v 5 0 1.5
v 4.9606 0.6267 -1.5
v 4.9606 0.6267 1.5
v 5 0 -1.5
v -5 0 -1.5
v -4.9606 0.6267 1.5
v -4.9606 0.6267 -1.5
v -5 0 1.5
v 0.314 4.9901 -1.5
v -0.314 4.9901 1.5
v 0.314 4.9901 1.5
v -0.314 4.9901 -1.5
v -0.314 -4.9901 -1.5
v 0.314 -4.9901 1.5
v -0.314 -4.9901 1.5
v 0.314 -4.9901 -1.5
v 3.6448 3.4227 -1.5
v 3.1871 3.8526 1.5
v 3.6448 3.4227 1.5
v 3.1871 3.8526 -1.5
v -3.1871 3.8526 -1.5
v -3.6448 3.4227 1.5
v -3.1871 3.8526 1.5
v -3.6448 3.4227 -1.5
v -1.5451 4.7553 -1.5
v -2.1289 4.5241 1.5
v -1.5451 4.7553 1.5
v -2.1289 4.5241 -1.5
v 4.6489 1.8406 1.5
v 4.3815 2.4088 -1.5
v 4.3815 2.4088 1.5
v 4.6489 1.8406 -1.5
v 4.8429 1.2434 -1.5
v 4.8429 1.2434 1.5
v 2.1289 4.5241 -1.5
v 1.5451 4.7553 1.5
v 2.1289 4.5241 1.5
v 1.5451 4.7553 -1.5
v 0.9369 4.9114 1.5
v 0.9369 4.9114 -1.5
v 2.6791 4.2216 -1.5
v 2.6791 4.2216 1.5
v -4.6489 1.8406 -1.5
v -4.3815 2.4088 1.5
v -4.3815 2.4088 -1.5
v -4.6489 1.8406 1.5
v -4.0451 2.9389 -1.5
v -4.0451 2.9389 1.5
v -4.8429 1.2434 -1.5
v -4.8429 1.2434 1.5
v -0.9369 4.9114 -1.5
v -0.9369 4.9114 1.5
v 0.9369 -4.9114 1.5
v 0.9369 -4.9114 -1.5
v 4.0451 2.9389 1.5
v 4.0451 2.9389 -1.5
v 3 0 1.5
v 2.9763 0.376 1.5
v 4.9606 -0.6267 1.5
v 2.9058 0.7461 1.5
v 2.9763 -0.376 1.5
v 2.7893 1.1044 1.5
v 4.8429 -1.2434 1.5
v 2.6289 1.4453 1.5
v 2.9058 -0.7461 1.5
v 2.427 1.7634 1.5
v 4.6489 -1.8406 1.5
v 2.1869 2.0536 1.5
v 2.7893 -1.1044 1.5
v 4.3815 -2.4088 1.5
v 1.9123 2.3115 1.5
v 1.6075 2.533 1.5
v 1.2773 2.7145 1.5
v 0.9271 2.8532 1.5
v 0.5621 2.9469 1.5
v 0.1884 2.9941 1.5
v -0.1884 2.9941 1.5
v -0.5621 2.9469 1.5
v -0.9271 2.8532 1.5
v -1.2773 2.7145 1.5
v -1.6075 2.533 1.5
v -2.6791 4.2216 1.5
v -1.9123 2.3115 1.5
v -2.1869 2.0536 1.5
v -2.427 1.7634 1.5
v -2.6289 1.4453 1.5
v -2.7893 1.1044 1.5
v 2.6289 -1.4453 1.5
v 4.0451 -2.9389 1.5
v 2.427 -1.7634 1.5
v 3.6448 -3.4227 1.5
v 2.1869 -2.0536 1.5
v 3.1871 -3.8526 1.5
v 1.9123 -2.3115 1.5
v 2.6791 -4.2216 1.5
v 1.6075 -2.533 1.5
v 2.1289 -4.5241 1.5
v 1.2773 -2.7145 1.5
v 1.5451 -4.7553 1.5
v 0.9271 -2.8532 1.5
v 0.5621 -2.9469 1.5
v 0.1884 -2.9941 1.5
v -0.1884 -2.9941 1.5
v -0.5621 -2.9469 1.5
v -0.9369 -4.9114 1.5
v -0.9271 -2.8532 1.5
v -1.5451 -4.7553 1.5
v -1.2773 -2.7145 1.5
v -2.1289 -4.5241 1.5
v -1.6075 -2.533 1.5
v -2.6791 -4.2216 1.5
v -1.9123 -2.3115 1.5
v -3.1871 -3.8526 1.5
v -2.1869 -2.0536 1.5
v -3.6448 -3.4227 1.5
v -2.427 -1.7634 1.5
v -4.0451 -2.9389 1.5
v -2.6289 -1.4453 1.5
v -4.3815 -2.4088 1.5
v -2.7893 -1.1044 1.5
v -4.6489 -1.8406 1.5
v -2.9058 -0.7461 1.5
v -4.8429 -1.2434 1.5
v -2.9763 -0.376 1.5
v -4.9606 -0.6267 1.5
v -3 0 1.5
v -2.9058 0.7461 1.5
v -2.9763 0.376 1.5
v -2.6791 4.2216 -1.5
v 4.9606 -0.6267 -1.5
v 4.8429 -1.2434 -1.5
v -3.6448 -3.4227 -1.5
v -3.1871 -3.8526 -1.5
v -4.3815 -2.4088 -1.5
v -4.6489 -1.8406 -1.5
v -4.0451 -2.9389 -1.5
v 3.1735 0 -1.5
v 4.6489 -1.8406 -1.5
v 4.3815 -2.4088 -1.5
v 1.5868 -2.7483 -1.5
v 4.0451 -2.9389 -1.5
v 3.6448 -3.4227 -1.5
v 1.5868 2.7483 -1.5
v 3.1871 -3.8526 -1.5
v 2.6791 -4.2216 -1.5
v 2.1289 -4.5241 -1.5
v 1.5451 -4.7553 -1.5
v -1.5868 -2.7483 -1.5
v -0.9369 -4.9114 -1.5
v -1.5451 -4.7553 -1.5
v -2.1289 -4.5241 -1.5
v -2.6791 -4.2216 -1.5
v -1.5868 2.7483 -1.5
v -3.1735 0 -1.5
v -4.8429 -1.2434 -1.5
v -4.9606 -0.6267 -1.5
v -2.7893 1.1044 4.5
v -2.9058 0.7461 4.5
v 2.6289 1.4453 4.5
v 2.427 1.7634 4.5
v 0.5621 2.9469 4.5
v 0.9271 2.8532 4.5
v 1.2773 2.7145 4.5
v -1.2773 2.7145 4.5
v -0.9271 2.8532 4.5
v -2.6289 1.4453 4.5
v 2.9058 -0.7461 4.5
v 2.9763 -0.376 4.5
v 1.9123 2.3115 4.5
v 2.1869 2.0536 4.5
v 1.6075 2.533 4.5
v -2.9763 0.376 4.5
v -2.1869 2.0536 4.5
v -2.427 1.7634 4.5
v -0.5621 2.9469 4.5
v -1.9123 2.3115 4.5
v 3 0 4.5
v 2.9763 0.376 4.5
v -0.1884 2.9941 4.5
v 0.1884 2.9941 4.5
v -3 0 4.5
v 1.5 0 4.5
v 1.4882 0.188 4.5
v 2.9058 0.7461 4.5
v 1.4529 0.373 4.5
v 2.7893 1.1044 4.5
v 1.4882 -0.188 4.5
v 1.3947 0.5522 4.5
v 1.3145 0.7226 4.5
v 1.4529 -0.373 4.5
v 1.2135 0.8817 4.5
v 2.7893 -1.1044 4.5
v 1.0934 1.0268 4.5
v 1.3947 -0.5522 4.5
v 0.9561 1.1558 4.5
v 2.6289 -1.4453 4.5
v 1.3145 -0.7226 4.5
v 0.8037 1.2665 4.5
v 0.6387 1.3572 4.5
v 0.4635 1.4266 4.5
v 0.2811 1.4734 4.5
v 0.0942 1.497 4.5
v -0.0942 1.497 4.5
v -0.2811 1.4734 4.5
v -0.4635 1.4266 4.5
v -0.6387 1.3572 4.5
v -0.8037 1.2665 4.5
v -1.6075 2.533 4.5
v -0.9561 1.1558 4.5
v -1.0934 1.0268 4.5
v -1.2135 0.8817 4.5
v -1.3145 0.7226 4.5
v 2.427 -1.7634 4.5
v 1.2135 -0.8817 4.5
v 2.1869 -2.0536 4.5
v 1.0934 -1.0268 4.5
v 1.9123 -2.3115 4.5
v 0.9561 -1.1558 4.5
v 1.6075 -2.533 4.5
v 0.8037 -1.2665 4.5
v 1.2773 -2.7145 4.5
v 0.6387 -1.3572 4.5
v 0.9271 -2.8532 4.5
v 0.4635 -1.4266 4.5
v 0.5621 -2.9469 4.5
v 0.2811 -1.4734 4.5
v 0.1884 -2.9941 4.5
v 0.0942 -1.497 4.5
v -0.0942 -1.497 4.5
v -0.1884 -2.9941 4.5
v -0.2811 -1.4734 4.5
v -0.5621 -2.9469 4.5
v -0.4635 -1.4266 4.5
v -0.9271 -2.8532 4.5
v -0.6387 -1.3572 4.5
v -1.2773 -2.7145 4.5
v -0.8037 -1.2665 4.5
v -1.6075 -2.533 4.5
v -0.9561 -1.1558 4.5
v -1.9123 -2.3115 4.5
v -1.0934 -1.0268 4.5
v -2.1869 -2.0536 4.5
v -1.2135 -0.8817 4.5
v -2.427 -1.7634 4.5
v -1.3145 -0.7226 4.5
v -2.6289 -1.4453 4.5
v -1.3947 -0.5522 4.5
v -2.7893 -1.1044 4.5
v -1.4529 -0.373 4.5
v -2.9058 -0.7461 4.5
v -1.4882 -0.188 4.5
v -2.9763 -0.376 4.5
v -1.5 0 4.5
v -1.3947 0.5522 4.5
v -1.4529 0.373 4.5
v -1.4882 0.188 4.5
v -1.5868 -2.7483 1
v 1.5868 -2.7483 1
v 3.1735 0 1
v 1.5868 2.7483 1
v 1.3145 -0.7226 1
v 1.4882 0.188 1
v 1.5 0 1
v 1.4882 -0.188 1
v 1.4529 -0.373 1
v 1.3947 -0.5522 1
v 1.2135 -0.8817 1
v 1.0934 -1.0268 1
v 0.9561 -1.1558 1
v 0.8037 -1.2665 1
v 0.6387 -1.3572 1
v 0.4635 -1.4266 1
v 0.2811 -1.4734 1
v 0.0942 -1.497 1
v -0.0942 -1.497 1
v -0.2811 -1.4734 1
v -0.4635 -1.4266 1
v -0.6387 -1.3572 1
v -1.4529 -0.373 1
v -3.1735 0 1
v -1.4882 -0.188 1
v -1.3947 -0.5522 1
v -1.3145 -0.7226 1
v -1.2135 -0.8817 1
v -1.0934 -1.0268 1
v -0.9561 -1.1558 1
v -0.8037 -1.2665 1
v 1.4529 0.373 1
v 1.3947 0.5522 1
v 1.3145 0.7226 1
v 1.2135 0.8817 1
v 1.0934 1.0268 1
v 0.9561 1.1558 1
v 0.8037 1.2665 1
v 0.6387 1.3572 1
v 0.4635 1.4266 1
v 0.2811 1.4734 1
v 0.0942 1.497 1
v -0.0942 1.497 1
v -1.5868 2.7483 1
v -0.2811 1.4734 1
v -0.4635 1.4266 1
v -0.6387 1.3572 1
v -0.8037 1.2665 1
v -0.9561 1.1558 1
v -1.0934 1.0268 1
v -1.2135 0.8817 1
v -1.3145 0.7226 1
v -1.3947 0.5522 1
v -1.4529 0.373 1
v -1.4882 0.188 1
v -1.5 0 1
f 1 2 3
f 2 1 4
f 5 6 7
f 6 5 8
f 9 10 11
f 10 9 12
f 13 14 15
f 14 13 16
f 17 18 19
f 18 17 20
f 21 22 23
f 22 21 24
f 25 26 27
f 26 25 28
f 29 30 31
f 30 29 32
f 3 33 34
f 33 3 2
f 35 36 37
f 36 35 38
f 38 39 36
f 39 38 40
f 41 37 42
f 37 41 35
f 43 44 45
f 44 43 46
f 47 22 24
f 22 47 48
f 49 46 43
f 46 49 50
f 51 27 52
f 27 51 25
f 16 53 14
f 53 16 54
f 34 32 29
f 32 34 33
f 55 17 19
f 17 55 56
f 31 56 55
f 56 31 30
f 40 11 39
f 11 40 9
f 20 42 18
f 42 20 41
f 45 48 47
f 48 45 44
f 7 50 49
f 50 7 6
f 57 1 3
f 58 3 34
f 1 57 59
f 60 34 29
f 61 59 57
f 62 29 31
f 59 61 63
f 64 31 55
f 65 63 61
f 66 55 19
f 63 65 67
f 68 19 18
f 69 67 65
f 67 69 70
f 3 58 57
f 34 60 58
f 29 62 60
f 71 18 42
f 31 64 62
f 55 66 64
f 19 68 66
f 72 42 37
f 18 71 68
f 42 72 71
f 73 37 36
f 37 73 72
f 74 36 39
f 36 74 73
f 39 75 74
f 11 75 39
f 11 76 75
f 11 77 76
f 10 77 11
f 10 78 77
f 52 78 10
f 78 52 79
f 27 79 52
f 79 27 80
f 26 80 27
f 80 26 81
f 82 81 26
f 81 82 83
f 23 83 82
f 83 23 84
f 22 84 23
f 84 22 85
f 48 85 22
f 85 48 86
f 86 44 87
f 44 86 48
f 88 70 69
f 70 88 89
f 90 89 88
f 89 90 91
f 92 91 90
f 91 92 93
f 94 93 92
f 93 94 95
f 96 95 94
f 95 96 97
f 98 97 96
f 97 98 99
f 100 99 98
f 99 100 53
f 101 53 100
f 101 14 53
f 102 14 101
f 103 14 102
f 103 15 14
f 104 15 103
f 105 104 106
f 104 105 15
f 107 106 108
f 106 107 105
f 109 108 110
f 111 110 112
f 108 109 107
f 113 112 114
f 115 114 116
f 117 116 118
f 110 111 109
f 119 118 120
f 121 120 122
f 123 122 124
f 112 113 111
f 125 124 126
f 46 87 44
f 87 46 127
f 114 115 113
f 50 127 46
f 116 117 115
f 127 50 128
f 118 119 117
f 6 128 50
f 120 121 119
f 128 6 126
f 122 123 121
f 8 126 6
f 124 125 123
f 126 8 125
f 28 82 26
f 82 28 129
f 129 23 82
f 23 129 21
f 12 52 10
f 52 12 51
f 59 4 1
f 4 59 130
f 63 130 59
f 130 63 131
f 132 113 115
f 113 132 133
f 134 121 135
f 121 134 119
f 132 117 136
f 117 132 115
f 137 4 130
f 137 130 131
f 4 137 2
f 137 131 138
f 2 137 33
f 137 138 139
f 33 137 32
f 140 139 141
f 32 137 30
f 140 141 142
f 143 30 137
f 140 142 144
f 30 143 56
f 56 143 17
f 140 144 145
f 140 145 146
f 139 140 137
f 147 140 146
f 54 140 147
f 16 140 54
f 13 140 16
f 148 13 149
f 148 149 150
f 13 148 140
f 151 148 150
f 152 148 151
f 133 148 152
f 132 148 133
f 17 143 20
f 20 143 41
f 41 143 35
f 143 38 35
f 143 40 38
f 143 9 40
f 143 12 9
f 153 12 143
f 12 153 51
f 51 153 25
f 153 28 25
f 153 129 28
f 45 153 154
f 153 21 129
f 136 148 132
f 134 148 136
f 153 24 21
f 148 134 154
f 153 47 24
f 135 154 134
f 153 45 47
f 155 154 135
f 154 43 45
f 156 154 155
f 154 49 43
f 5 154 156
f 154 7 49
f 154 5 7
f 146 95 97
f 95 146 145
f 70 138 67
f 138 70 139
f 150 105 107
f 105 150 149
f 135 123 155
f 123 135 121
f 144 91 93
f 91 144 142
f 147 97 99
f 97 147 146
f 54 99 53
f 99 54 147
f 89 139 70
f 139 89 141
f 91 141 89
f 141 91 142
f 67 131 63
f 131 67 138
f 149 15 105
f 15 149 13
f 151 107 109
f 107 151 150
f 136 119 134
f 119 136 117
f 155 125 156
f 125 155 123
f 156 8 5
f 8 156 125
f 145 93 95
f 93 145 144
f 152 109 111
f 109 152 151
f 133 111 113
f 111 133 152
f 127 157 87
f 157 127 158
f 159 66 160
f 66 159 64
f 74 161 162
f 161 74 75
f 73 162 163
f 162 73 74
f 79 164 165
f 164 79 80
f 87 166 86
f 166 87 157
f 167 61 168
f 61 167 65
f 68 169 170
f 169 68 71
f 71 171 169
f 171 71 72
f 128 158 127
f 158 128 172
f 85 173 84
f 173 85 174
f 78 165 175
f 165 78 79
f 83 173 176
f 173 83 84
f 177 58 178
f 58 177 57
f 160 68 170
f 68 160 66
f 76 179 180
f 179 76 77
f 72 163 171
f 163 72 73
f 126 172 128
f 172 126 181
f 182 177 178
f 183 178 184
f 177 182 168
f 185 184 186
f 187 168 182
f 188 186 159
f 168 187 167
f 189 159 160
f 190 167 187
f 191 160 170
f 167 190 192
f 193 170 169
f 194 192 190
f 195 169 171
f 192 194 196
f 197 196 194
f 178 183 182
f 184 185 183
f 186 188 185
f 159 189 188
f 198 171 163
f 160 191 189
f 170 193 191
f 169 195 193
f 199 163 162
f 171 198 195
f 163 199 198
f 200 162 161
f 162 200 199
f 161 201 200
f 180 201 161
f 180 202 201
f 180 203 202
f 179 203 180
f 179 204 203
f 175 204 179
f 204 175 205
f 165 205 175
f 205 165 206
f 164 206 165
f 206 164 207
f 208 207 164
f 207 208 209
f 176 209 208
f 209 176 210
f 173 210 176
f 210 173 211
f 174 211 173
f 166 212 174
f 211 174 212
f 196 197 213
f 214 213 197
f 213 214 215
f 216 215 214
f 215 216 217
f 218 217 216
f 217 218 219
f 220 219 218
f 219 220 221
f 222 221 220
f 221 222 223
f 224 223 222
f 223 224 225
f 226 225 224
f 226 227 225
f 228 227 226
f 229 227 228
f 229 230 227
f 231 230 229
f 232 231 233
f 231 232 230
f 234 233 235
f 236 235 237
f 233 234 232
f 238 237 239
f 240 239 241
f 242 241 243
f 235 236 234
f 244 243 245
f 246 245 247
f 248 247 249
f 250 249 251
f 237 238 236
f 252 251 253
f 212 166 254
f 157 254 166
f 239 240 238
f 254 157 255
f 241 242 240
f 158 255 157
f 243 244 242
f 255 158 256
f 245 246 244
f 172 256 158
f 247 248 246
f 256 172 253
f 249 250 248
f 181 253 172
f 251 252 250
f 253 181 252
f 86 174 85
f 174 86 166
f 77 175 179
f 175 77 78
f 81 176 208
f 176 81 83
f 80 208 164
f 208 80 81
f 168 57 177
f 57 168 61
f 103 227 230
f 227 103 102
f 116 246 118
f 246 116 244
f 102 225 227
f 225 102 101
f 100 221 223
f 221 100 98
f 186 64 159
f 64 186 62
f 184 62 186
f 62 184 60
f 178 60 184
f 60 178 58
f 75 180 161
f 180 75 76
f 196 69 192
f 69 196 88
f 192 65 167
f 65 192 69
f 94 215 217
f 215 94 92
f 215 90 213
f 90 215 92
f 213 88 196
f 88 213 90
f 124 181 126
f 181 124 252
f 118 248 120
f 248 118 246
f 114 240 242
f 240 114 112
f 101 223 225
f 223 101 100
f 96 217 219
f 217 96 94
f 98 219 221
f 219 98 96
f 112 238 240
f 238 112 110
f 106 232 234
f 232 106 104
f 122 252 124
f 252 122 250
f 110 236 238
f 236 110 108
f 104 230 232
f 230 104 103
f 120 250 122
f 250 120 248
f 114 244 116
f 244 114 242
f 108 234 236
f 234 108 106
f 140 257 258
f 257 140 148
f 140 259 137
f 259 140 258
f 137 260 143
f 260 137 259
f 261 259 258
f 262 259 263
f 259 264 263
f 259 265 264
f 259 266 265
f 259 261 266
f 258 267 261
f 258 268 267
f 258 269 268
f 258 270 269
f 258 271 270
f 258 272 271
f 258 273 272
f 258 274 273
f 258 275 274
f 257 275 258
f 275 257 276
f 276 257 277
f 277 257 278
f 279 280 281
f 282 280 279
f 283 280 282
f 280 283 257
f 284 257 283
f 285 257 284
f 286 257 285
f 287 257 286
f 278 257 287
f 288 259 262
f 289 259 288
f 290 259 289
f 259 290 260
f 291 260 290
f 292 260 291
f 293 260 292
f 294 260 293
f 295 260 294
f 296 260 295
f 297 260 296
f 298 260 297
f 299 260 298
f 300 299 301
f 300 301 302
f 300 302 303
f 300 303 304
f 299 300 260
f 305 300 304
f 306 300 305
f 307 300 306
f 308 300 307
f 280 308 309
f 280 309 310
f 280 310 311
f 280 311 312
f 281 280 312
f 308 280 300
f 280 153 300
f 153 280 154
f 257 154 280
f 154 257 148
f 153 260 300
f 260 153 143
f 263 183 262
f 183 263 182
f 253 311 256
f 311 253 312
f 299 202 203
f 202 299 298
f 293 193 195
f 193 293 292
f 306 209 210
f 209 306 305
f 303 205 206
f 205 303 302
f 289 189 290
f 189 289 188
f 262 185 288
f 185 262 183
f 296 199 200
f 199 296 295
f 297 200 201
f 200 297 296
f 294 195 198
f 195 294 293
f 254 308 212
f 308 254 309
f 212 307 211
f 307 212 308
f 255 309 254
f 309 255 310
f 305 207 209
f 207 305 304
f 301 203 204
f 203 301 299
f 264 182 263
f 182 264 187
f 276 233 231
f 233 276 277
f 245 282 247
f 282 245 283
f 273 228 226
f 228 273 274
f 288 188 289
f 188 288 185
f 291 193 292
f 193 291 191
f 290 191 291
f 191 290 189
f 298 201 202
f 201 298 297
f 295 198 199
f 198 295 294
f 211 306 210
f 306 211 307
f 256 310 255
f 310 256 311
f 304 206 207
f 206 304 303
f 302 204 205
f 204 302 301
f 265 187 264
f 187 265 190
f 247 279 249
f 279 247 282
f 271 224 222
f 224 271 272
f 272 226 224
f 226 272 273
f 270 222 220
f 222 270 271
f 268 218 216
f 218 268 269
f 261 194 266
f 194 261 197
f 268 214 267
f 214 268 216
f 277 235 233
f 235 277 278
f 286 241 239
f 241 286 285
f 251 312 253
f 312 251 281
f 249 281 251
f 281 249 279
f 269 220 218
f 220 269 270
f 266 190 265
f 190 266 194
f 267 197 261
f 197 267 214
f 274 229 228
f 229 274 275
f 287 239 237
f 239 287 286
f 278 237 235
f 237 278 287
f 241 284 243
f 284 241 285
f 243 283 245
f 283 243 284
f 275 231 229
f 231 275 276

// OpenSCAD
$fn = 50;


difference() {
	union() {
		translate(v = [0, 0, -1.5000000000]) {
			cylinder(h = 3, r = 5.0000000000);
		}
		translate(v = [0, 0, -1.5000000000]) {
			cylinder(h = 6, r = 3.0000000000);
		}
	}
	union() {
		translate(v = [0, 0, -1.5000000000]) {
			rotate(a = [0, 0, 0]) {
				difference() {
					union() {
						#linear_extrude(height = 2.5000000000) {
							polygon(points = [[3.1735000000, 0.0000000000], [1.5867500000, 2.7483316189], [-1.5867500000, 2.7483316189], [-3.1735000000, 0.0000000000], [-1.5867500000, -2.7483316189], [1.5867500000, -2.7483316189]]);
						}
					}
					union();
				}
			}
		}
		translate(v = [0, 0, -50.0000000000]) {
			cylinder(h = 100, r = 1.5000000000);
		}
	}
}
